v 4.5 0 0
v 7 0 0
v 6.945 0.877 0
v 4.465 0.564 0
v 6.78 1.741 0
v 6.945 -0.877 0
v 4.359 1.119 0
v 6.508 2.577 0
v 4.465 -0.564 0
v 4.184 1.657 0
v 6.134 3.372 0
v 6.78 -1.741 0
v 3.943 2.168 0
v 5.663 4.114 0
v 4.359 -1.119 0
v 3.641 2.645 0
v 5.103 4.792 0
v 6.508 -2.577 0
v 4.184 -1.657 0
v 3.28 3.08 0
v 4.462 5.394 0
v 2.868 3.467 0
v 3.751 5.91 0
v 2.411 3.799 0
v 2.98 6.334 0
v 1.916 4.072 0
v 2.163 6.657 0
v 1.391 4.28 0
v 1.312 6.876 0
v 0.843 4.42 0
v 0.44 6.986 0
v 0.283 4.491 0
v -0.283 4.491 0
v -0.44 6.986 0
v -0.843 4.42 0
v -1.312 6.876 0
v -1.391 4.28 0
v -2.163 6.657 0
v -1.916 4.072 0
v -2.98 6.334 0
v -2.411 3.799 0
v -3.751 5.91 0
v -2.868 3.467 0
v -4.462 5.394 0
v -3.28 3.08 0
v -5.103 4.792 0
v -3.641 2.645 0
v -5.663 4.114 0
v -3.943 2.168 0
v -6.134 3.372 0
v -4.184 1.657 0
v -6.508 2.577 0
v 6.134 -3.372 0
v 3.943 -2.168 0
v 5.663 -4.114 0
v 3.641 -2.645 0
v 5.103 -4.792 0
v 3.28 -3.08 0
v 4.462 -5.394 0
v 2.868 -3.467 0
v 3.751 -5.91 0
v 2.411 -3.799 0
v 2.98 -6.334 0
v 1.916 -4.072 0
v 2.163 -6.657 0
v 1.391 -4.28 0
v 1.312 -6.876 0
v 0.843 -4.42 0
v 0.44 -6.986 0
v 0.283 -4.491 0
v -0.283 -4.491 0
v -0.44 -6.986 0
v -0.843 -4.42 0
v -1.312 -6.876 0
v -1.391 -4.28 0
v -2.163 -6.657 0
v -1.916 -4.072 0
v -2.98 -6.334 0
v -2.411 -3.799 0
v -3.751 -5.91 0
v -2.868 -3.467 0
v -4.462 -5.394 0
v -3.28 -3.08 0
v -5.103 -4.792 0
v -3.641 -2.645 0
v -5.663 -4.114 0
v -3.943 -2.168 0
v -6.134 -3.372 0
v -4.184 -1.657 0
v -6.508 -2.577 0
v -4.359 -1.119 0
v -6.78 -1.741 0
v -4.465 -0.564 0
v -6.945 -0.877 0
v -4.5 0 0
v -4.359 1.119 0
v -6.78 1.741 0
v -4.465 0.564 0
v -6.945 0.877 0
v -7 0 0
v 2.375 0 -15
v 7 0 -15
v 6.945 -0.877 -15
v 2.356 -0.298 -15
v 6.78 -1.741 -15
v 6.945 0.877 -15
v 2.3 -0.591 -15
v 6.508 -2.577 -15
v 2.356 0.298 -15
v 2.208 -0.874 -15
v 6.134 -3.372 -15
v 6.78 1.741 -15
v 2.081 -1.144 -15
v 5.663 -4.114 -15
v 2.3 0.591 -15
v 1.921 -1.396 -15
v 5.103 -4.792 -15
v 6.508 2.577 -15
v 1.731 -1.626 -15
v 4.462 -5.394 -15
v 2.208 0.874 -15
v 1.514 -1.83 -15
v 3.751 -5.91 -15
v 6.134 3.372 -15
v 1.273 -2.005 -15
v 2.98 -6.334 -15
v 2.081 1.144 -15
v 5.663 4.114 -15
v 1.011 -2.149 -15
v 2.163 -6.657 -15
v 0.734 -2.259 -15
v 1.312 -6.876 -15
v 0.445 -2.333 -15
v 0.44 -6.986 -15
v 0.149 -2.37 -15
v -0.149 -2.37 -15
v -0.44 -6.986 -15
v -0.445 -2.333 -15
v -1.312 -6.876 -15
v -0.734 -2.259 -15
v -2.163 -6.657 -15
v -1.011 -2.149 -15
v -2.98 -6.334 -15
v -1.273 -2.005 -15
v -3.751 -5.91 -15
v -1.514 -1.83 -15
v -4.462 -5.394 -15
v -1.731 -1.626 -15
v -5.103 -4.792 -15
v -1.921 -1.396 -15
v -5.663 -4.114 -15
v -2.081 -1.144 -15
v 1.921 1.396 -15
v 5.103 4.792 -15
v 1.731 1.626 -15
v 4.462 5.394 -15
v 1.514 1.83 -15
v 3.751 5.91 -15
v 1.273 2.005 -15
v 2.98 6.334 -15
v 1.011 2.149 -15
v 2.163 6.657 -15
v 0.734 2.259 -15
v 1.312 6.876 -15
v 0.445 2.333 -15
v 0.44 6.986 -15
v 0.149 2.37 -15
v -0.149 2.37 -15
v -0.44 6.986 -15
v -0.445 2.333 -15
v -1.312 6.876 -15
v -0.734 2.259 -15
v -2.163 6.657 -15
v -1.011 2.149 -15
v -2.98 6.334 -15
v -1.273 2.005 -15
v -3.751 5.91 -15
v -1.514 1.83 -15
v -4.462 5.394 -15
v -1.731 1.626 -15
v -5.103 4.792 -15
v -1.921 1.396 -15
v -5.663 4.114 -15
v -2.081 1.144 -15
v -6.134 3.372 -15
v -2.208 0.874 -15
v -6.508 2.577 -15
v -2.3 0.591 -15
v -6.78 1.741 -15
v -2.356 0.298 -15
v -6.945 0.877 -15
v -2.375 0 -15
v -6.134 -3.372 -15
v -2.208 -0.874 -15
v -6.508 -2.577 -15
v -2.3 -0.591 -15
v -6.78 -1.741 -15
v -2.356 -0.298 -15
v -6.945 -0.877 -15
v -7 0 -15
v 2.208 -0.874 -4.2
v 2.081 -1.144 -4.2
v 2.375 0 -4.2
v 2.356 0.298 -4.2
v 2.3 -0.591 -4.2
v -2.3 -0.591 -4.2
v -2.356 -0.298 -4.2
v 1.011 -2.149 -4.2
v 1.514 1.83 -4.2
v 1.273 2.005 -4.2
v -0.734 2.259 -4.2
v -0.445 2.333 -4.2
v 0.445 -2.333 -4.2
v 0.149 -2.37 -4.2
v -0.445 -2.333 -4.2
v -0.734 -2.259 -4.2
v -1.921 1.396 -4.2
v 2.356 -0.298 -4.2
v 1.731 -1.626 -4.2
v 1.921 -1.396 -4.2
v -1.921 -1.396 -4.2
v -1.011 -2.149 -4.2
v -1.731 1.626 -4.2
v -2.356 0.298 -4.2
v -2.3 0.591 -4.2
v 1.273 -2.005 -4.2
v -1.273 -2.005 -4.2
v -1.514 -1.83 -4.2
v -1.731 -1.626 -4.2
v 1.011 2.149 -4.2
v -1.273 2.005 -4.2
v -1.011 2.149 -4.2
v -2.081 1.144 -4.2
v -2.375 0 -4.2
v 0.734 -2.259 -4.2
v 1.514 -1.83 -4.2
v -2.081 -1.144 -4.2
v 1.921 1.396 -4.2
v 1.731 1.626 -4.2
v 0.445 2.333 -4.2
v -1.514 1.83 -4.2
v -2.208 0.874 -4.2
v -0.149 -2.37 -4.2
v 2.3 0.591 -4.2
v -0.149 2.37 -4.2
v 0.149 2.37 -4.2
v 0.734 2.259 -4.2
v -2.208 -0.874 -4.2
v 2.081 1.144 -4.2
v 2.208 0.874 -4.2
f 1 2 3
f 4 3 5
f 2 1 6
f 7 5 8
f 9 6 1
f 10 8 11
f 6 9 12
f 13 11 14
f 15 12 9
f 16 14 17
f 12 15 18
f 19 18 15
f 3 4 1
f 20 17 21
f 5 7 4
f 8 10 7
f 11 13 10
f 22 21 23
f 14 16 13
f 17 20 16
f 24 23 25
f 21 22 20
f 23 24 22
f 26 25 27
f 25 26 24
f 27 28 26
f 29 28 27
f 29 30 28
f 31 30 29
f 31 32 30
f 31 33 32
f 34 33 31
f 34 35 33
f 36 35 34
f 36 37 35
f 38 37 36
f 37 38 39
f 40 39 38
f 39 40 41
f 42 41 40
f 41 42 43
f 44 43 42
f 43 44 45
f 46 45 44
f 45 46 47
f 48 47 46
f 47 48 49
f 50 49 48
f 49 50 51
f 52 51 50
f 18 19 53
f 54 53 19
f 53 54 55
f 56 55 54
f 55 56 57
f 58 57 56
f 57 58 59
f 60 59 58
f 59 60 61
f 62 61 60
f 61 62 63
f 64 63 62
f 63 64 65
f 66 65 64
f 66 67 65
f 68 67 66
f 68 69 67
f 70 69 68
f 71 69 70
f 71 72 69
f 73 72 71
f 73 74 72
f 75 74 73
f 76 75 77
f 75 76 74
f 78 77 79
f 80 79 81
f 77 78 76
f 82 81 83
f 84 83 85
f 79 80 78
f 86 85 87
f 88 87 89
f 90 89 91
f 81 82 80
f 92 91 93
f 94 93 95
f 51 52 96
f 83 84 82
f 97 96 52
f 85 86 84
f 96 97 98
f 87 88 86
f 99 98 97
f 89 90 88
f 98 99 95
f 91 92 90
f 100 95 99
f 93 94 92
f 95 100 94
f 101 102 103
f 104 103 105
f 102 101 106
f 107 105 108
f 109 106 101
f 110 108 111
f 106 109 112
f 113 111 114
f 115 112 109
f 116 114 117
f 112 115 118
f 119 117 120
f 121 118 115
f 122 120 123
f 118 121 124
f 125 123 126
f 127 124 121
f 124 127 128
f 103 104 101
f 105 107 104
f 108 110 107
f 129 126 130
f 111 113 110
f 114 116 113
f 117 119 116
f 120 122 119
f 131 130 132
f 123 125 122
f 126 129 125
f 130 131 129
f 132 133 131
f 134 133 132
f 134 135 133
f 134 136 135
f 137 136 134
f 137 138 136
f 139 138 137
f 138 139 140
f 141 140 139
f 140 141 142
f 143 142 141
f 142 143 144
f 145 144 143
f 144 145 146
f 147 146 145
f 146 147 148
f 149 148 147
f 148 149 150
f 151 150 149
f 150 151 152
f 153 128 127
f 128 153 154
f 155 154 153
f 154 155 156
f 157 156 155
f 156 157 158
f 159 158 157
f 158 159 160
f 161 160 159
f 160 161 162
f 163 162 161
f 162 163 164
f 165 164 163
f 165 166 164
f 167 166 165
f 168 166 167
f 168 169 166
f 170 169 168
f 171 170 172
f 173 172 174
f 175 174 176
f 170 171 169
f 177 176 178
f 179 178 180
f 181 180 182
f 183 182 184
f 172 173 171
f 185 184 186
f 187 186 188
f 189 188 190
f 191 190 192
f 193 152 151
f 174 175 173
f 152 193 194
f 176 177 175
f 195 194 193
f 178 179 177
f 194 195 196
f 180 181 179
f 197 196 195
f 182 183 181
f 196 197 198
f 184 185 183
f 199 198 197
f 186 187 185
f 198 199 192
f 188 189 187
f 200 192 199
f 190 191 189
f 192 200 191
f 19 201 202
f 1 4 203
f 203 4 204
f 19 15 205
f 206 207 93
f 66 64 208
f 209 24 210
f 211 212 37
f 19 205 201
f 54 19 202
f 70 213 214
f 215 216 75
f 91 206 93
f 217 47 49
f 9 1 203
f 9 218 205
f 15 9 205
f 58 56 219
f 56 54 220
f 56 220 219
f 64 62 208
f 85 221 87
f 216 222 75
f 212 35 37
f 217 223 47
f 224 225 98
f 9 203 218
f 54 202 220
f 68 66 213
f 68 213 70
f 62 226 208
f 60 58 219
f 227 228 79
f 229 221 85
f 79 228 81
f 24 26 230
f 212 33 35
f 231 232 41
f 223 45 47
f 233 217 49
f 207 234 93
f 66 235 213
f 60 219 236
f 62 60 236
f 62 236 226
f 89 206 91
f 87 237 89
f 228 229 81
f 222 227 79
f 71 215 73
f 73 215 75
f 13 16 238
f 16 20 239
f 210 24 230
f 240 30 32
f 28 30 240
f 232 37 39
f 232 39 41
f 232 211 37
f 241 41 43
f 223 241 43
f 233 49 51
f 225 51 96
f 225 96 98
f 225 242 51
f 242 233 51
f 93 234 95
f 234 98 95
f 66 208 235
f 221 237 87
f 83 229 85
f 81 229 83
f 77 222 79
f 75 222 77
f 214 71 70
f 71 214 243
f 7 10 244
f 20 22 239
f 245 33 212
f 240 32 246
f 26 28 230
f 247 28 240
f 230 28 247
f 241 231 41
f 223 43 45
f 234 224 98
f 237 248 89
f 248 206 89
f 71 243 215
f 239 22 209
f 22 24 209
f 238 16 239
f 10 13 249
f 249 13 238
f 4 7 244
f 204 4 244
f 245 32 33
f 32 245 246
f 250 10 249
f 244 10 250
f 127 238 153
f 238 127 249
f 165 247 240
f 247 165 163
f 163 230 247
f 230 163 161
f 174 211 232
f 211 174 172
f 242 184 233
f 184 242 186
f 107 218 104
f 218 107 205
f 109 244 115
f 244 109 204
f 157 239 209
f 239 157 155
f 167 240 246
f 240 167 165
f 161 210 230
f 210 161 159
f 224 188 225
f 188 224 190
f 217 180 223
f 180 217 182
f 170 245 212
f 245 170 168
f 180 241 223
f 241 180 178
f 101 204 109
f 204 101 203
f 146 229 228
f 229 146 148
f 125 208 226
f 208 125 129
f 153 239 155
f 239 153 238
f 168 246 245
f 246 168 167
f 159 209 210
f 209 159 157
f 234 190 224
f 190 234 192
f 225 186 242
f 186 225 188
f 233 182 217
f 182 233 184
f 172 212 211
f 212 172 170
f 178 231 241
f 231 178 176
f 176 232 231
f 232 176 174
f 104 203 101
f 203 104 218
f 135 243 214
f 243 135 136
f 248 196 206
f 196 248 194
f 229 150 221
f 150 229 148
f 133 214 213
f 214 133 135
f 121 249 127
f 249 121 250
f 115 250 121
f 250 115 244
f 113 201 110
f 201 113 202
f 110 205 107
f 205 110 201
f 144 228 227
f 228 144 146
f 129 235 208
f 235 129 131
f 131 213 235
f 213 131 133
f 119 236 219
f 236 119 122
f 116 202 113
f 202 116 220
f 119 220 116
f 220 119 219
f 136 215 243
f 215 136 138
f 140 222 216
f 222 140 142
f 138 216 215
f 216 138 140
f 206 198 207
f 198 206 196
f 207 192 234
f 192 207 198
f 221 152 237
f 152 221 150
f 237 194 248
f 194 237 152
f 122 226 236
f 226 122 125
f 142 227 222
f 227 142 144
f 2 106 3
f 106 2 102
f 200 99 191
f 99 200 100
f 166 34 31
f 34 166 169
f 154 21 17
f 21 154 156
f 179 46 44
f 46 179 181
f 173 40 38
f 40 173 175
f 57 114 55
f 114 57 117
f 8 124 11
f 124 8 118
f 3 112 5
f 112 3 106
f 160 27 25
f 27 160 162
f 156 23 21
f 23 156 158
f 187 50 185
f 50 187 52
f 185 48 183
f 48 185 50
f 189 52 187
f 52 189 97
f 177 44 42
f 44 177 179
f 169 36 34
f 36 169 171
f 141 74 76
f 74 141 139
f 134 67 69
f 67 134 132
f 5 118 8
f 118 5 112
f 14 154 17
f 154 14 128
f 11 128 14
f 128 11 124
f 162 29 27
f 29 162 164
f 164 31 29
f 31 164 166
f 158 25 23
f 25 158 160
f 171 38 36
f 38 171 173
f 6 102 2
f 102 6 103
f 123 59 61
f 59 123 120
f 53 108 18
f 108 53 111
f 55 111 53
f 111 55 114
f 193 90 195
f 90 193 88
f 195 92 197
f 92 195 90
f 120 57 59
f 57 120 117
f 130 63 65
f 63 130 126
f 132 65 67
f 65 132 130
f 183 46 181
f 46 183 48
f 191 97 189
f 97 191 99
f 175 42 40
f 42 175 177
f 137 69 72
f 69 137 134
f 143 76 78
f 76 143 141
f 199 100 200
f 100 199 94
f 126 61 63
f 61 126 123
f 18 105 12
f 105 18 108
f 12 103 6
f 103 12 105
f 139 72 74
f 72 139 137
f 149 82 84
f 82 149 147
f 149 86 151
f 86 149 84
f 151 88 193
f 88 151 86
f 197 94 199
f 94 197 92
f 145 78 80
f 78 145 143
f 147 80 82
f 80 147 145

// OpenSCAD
$fn = 50;


difference() {
	union() {
		translate(v = [0, 0, -15.0000000000]) {
			cylinder(h = 15, r = 7.0000000000);
		}
		cylinder(h = 0, r = 10.0000000000);
	}
	union() {
		translate(v = [0, 0, 0]) {
			rotate(a = [0, 0, 0]) {
				difference() {
					union() {
						#translate(v = [0, 0, -15.0000000000]) {
							cylinder(h = 15, r = 2.2500000000);
						}
						#translate(v = [0, 0, -4.2000000000]) {
							cylinder(h = 4.2000000000, r1 = 2.3750000000, r2 = 4.5000000000);
						}
						#translate(v = [0, 0, -15.0000000000]) {
							cylinder(h = 15, r = 2.3750000000);
						}
						#translate(v = [0, 0, -15.0000000000]) {
							cylinder(h = 15, r = 2.2500000000);
						}
					}
					union();
				}
			}
		}
	}
}
